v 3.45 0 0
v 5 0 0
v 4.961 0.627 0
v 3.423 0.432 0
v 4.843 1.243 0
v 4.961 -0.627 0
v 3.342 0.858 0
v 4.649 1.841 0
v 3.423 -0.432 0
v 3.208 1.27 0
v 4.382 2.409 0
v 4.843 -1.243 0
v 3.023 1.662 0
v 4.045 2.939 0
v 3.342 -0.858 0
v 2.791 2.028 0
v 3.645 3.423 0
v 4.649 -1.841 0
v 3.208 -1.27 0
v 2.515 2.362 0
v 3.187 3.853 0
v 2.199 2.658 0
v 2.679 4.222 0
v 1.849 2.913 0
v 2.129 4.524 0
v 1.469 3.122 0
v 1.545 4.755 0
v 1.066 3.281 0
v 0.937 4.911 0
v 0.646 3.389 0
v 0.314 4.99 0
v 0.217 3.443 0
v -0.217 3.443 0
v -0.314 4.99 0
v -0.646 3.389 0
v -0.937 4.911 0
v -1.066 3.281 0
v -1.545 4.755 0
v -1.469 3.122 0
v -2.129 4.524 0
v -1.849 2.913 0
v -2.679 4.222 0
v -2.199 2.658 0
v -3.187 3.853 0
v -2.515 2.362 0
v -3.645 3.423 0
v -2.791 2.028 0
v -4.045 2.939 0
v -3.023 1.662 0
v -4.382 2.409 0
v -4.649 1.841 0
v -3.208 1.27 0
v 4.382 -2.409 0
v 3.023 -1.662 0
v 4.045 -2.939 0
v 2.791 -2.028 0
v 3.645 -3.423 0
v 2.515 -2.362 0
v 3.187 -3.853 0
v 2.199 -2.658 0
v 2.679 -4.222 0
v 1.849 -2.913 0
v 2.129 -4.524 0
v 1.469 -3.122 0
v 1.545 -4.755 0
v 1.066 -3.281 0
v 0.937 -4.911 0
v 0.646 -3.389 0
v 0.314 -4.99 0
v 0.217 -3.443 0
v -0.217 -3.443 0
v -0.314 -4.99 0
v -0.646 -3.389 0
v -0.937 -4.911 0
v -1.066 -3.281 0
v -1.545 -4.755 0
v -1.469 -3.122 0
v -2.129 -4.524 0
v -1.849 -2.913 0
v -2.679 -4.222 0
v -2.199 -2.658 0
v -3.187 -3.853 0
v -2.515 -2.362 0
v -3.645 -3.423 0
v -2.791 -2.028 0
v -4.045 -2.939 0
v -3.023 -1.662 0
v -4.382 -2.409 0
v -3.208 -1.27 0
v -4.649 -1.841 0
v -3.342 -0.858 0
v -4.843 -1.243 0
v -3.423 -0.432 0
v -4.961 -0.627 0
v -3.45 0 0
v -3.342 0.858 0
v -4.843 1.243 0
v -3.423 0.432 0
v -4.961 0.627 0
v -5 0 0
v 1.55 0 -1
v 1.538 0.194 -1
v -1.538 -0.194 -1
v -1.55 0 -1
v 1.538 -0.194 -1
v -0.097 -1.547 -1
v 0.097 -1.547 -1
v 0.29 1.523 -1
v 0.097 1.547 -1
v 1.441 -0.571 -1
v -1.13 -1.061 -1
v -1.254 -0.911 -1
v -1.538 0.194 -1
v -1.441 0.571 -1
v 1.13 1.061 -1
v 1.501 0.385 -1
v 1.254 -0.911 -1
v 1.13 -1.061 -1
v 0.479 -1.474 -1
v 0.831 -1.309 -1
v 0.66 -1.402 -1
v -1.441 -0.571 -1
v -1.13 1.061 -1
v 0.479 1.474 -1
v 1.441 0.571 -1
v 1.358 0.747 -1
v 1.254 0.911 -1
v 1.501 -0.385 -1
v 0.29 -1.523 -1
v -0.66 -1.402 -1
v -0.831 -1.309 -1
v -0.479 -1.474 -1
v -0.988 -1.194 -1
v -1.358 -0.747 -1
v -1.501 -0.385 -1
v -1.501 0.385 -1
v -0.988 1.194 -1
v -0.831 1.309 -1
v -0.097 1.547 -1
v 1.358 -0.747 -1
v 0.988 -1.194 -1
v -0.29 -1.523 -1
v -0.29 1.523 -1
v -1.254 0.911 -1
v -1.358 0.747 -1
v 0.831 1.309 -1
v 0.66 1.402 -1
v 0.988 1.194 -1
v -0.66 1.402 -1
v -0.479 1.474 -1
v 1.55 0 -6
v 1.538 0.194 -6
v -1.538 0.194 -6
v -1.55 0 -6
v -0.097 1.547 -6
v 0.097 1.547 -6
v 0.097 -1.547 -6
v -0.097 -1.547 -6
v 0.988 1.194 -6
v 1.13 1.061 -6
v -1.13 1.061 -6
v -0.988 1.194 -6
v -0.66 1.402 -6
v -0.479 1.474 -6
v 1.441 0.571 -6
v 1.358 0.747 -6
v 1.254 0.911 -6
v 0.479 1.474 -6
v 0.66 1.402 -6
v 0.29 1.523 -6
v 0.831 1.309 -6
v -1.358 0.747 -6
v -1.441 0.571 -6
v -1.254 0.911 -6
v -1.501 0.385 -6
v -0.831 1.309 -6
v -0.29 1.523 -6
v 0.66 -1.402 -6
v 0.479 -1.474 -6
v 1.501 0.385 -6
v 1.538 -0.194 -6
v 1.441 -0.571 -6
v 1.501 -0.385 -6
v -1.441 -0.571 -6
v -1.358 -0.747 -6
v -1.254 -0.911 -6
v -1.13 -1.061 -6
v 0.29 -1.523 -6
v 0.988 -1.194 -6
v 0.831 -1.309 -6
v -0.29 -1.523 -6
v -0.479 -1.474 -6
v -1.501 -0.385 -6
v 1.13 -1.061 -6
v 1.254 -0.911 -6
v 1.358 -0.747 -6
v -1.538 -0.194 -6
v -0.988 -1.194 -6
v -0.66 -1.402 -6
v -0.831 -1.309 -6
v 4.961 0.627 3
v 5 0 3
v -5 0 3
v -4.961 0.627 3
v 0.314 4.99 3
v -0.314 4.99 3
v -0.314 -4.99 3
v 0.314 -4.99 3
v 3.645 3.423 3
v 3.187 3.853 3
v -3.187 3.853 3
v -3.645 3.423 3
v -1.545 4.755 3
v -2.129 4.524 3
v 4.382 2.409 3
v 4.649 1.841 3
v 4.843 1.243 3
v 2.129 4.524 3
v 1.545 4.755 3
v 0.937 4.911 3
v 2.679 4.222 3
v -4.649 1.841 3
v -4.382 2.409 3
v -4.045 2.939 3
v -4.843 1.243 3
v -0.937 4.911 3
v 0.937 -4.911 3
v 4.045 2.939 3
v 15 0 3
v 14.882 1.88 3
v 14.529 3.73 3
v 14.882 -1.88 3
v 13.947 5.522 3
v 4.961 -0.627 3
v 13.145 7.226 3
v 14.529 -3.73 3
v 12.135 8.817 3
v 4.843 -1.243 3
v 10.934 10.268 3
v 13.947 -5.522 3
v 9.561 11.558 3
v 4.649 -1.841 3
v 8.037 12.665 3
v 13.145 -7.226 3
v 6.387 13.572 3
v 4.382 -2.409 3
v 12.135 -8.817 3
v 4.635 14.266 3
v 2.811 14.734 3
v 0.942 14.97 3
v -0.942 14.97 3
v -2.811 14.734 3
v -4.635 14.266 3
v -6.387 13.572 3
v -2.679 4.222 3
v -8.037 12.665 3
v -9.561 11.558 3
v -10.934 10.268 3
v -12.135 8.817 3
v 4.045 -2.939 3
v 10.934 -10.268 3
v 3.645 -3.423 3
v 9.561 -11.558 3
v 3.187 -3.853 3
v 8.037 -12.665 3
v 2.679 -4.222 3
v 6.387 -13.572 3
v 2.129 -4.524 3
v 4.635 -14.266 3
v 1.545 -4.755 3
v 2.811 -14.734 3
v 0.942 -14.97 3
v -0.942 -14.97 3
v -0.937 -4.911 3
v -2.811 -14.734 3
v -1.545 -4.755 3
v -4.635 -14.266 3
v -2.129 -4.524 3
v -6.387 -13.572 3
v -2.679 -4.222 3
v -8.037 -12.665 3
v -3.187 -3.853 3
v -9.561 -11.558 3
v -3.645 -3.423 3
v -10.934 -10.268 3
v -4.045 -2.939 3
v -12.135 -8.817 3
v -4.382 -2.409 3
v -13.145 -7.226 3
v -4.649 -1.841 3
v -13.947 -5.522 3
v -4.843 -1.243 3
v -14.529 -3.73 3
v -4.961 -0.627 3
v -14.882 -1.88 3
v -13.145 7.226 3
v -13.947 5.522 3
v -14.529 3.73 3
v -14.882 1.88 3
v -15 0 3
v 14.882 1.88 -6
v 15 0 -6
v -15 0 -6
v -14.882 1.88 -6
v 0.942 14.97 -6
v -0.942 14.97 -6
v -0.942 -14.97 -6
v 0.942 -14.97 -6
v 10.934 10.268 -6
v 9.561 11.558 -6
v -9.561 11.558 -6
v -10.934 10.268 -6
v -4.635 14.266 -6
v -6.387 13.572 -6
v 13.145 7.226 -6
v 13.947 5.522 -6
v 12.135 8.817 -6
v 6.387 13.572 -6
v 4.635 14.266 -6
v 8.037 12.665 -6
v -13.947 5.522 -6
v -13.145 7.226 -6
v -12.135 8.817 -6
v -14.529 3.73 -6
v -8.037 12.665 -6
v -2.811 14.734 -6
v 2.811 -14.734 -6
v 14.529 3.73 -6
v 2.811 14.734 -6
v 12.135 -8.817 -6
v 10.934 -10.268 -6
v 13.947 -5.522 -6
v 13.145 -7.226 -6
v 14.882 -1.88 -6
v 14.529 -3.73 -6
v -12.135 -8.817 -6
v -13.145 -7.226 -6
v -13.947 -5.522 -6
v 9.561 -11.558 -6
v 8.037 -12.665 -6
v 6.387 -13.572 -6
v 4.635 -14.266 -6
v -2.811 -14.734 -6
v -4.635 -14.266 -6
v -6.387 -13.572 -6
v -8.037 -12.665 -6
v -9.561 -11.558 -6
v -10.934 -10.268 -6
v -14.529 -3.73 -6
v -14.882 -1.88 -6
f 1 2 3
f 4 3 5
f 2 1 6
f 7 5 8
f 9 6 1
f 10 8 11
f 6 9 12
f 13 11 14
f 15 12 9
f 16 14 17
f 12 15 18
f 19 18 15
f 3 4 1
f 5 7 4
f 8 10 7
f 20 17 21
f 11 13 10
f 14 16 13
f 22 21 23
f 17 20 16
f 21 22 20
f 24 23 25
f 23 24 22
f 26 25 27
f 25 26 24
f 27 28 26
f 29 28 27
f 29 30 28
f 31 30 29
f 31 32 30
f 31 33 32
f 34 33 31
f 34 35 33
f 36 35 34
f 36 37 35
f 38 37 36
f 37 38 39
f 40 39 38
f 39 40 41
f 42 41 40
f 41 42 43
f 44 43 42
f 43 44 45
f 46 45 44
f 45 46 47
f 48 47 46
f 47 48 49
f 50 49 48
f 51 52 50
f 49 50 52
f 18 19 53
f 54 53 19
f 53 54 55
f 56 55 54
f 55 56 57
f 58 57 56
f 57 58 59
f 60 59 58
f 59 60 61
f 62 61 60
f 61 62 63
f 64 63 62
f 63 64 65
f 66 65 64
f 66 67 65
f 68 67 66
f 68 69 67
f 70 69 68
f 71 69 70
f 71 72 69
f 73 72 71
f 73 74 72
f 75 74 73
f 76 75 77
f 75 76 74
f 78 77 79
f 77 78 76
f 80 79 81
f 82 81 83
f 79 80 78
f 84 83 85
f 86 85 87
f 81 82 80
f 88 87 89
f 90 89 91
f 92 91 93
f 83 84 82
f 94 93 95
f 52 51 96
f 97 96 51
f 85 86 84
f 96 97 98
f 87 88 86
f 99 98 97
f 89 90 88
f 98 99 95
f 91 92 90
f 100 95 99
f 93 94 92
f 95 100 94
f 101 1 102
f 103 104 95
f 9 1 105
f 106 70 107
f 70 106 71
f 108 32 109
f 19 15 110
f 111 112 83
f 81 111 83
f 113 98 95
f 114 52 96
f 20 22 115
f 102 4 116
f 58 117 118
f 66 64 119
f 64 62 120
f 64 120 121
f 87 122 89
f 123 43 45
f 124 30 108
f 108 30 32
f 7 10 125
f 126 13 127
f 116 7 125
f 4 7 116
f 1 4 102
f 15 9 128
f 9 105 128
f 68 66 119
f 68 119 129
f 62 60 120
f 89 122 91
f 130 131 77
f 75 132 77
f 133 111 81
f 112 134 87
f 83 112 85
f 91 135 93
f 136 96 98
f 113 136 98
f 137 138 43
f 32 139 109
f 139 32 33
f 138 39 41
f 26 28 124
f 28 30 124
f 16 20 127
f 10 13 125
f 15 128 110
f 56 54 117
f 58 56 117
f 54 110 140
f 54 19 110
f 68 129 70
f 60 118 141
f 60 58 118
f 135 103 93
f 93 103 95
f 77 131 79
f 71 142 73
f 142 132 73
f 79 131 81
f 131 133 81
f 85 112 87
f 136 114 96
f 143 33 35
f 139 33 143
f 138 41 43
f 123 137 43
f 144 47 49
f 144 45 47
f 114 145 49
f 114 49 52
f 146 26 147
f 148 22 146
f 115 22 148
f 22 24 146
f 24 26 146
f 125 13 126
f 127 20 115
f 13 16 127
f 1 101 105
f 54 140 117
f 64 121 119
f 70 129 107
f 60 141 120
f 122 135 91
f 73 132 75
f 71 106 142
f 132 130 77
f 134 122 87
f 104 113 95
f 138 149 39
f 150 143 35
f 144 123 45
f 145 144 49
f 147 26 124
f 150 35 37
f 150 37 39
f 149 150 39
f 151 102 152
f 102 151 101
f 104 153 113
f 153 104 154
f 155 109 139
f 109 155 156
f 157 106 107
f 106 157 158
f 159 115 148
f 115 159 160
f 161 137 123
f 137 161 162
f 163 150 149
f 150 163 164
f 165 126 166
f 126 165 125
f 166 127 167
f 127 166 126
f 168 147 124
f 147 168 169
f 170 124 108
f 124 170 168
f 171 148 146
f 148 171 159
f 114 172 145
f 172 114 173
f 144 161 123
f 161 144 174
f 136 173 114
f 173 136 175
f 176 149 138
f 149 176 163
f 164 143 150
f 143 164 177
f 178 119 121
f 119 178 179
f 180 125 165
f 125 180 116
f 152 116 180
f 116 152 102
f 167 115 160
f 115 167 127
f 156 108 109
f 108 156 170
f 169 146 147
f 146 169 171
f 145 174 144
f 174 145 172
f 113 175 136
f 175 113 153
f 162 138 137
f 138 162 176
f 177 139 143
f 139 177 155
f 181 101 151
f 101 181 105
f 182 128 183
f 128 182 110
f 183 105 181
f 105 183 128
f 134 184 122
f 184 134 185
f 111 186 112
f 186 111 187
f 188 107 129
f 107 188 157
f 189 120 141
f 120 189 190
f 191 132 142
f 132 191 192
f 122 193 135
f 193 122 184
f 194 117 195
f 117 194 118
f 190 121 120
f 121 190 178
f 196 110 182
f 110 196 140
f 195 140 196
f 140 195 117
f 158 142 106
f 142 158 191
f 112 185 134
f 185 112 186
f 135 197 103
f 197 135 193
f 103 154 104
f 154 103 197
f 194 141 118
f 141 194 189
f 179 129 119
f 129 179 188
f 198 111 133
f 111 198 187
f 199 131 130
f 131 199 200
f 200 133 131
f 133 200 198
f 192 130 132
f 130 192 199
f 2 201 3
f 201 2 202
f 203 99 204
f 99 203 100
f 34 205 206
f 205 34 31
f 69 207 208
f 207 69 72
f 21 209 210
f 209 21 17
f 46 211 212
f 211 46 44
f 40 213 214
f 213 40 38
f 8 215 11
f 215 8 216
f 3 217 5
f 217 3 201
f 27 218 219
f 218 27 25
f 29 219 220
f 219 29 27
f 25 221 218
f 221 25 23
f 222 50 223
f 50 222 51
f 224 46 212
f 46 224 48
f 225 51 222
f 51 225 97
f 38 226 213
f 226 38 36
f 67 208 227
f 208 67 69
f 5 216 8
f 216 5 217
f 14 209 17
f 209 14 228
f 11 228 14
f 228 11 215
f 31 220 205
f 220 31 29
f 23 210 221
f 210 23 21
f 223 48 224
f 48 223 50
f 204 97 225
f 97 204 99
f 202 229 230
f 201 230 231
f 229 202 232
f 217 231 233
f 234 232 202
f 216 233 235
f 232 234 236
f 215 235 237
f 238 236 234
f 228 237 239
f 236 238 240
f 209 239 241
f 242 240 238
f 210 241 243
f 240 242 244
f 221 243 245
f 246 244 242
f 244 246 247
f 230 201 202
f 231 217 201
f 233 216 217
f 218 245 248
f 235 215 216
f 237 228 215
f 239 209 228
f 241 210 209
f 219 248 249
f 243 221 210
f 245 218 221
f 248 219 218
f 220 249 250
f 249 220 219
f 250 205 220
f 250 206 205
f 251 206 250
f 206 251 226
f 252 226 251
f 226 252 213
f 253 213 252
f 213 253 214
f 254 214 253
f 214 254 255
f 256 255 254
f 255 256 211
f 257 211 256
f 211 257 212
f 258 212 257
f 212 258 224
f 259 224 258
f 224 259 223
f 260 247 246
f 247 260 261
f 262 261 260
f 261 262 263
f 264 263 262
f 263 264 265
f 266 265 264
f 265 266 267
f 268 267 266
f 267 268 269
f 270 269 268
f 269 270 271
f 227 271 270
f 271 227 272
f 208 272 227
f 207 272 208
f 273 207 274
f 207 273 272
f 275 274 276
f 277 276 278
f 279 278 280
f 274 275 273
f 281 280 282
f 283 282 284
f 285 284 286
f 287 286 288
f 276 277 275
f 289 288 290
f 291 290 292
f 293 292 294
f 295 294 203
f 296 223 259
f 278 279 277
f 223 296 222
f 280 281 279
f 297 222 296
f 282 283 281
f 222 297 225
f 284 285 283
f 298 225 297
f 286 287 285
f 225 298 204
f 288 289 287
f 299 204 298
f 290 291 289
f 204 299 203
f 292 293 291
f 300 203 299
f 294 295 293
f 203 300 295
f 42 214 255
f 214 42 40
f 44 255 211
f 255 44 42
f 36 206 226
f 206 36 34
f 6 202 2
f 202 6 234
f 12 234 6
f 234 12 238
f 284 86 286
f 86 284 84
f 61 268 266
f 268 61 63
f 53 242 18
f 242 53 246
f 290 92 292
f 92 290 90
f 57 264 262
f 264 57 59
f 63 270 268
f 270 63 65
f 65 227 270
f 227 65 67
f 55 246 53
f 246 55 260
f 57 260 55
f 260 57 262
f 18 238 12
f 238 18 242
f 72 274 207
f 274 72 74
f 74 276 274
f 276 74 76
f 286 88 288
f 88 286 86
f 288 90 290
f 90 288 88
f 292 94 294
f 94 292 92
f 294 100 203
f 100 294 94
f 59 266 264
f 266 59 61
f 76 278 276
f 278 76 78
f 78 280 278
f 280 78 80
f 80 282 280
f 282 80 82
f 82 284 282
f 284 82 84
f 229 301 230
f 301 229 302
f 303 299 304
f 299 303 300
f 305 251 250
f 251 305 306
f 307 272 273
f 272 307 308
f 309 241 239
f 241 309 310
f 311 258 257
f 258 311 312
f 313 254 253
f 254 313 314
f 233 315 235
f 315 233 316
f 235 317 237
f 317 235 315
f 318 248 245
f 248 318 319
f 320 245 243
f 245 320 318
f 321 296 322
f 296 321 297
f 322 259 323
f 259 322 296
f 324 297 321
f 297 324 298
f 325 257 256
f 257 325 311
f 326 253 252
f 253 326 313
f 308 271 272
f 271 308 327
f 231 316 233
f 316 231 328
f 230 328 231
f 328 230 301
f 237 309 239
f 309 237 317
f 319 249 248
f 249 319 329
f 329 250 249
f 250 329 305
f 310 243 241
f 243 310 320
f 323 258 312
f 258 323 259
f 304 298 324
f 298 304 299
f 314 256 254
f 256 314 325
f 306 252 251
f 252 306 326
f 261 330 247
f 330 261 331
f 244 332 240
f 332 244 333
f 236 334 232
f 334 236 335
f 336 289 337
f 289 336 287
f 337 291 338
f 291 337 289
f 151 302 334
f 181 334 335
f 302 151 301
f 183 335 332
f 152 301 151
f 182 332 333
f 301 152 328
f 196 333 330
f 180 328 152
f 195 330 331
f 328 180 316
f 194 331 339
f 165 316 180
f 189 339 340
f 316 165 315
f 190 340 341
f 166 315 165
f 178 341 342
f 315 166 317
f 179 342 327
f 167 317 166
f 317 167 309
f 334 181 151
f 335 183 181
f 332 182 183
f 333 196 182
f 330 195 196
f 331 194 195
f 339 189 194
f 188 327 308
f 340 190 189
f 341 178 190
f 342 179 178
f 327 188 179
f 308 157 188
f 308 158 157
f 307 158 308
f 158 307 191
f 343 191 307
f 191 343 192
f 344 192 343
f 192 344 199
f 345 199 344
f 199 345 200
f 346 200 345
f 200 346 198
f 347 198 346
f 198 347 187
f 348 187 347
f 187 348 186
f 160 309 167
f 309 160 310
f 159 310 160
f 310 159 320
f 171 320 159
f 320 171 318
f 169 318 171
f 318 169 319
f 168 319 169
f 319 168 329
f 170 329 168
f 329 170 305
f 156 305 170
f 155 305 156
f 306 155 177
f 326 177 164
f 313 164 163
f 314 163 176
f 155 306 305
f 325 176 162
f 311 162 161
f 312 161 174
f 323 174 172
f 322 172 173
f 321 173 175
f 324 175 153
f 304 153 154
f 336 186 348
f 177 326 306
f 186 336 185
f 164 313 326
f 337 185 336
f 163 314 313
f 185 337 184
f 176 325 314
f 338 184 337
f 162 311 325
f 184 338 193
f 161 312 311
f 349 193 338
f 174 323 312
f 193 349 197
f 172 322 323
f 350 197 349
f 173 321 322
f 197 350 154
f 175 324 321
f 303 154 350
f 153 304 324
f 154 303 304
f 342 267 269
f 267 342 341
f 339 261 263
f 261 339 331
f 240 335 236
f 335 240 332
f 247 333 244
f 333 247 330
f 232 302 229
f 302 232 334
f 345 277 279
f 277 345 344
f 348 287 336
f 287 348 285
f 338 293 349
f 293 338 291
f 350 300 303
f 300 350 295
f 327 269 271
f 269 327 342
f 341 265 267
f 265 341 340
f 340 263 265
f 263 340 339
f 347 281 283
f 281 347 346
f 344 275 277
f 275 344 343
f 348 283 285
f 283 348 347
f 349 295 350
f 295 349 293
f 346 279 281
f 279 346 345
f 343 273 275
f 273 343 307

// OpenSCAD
$fn = 50;


difference() {
	union() {
		translate(v = [0, 0, -6.0000000000]) {
			cylinder(h = 9, r = 15.0000000000);
		}
	}
	union() {
		translate(v = [0, 0, 0]) {
			rotate(a = [0, 0, 0]) {
				difference() {
					union() {
						translate(v = [0, 0, -9.0000000000]) {
							cylinder(h = 9, r = 1.2500000000);
						}
						translate(v = [0, 0, -1.0000000000]) {
							cylinder(h = 1.0000000000, r1 = 1.5500000000, r2 = 3.4500000000);
						}
						translate(v = [0, 0, -9.0000000000]) {
							cylinder(h = 9, r = 1.5500000000);
						}
						translate(v = [0, 0, -9.0000000000]) {
							cylinder(h = 9, r = 1.2500000000);
						}
					}
					union();
				}
			}
		}
		#cylinder(h = 3, r = 5.0000000000);
	}
}
